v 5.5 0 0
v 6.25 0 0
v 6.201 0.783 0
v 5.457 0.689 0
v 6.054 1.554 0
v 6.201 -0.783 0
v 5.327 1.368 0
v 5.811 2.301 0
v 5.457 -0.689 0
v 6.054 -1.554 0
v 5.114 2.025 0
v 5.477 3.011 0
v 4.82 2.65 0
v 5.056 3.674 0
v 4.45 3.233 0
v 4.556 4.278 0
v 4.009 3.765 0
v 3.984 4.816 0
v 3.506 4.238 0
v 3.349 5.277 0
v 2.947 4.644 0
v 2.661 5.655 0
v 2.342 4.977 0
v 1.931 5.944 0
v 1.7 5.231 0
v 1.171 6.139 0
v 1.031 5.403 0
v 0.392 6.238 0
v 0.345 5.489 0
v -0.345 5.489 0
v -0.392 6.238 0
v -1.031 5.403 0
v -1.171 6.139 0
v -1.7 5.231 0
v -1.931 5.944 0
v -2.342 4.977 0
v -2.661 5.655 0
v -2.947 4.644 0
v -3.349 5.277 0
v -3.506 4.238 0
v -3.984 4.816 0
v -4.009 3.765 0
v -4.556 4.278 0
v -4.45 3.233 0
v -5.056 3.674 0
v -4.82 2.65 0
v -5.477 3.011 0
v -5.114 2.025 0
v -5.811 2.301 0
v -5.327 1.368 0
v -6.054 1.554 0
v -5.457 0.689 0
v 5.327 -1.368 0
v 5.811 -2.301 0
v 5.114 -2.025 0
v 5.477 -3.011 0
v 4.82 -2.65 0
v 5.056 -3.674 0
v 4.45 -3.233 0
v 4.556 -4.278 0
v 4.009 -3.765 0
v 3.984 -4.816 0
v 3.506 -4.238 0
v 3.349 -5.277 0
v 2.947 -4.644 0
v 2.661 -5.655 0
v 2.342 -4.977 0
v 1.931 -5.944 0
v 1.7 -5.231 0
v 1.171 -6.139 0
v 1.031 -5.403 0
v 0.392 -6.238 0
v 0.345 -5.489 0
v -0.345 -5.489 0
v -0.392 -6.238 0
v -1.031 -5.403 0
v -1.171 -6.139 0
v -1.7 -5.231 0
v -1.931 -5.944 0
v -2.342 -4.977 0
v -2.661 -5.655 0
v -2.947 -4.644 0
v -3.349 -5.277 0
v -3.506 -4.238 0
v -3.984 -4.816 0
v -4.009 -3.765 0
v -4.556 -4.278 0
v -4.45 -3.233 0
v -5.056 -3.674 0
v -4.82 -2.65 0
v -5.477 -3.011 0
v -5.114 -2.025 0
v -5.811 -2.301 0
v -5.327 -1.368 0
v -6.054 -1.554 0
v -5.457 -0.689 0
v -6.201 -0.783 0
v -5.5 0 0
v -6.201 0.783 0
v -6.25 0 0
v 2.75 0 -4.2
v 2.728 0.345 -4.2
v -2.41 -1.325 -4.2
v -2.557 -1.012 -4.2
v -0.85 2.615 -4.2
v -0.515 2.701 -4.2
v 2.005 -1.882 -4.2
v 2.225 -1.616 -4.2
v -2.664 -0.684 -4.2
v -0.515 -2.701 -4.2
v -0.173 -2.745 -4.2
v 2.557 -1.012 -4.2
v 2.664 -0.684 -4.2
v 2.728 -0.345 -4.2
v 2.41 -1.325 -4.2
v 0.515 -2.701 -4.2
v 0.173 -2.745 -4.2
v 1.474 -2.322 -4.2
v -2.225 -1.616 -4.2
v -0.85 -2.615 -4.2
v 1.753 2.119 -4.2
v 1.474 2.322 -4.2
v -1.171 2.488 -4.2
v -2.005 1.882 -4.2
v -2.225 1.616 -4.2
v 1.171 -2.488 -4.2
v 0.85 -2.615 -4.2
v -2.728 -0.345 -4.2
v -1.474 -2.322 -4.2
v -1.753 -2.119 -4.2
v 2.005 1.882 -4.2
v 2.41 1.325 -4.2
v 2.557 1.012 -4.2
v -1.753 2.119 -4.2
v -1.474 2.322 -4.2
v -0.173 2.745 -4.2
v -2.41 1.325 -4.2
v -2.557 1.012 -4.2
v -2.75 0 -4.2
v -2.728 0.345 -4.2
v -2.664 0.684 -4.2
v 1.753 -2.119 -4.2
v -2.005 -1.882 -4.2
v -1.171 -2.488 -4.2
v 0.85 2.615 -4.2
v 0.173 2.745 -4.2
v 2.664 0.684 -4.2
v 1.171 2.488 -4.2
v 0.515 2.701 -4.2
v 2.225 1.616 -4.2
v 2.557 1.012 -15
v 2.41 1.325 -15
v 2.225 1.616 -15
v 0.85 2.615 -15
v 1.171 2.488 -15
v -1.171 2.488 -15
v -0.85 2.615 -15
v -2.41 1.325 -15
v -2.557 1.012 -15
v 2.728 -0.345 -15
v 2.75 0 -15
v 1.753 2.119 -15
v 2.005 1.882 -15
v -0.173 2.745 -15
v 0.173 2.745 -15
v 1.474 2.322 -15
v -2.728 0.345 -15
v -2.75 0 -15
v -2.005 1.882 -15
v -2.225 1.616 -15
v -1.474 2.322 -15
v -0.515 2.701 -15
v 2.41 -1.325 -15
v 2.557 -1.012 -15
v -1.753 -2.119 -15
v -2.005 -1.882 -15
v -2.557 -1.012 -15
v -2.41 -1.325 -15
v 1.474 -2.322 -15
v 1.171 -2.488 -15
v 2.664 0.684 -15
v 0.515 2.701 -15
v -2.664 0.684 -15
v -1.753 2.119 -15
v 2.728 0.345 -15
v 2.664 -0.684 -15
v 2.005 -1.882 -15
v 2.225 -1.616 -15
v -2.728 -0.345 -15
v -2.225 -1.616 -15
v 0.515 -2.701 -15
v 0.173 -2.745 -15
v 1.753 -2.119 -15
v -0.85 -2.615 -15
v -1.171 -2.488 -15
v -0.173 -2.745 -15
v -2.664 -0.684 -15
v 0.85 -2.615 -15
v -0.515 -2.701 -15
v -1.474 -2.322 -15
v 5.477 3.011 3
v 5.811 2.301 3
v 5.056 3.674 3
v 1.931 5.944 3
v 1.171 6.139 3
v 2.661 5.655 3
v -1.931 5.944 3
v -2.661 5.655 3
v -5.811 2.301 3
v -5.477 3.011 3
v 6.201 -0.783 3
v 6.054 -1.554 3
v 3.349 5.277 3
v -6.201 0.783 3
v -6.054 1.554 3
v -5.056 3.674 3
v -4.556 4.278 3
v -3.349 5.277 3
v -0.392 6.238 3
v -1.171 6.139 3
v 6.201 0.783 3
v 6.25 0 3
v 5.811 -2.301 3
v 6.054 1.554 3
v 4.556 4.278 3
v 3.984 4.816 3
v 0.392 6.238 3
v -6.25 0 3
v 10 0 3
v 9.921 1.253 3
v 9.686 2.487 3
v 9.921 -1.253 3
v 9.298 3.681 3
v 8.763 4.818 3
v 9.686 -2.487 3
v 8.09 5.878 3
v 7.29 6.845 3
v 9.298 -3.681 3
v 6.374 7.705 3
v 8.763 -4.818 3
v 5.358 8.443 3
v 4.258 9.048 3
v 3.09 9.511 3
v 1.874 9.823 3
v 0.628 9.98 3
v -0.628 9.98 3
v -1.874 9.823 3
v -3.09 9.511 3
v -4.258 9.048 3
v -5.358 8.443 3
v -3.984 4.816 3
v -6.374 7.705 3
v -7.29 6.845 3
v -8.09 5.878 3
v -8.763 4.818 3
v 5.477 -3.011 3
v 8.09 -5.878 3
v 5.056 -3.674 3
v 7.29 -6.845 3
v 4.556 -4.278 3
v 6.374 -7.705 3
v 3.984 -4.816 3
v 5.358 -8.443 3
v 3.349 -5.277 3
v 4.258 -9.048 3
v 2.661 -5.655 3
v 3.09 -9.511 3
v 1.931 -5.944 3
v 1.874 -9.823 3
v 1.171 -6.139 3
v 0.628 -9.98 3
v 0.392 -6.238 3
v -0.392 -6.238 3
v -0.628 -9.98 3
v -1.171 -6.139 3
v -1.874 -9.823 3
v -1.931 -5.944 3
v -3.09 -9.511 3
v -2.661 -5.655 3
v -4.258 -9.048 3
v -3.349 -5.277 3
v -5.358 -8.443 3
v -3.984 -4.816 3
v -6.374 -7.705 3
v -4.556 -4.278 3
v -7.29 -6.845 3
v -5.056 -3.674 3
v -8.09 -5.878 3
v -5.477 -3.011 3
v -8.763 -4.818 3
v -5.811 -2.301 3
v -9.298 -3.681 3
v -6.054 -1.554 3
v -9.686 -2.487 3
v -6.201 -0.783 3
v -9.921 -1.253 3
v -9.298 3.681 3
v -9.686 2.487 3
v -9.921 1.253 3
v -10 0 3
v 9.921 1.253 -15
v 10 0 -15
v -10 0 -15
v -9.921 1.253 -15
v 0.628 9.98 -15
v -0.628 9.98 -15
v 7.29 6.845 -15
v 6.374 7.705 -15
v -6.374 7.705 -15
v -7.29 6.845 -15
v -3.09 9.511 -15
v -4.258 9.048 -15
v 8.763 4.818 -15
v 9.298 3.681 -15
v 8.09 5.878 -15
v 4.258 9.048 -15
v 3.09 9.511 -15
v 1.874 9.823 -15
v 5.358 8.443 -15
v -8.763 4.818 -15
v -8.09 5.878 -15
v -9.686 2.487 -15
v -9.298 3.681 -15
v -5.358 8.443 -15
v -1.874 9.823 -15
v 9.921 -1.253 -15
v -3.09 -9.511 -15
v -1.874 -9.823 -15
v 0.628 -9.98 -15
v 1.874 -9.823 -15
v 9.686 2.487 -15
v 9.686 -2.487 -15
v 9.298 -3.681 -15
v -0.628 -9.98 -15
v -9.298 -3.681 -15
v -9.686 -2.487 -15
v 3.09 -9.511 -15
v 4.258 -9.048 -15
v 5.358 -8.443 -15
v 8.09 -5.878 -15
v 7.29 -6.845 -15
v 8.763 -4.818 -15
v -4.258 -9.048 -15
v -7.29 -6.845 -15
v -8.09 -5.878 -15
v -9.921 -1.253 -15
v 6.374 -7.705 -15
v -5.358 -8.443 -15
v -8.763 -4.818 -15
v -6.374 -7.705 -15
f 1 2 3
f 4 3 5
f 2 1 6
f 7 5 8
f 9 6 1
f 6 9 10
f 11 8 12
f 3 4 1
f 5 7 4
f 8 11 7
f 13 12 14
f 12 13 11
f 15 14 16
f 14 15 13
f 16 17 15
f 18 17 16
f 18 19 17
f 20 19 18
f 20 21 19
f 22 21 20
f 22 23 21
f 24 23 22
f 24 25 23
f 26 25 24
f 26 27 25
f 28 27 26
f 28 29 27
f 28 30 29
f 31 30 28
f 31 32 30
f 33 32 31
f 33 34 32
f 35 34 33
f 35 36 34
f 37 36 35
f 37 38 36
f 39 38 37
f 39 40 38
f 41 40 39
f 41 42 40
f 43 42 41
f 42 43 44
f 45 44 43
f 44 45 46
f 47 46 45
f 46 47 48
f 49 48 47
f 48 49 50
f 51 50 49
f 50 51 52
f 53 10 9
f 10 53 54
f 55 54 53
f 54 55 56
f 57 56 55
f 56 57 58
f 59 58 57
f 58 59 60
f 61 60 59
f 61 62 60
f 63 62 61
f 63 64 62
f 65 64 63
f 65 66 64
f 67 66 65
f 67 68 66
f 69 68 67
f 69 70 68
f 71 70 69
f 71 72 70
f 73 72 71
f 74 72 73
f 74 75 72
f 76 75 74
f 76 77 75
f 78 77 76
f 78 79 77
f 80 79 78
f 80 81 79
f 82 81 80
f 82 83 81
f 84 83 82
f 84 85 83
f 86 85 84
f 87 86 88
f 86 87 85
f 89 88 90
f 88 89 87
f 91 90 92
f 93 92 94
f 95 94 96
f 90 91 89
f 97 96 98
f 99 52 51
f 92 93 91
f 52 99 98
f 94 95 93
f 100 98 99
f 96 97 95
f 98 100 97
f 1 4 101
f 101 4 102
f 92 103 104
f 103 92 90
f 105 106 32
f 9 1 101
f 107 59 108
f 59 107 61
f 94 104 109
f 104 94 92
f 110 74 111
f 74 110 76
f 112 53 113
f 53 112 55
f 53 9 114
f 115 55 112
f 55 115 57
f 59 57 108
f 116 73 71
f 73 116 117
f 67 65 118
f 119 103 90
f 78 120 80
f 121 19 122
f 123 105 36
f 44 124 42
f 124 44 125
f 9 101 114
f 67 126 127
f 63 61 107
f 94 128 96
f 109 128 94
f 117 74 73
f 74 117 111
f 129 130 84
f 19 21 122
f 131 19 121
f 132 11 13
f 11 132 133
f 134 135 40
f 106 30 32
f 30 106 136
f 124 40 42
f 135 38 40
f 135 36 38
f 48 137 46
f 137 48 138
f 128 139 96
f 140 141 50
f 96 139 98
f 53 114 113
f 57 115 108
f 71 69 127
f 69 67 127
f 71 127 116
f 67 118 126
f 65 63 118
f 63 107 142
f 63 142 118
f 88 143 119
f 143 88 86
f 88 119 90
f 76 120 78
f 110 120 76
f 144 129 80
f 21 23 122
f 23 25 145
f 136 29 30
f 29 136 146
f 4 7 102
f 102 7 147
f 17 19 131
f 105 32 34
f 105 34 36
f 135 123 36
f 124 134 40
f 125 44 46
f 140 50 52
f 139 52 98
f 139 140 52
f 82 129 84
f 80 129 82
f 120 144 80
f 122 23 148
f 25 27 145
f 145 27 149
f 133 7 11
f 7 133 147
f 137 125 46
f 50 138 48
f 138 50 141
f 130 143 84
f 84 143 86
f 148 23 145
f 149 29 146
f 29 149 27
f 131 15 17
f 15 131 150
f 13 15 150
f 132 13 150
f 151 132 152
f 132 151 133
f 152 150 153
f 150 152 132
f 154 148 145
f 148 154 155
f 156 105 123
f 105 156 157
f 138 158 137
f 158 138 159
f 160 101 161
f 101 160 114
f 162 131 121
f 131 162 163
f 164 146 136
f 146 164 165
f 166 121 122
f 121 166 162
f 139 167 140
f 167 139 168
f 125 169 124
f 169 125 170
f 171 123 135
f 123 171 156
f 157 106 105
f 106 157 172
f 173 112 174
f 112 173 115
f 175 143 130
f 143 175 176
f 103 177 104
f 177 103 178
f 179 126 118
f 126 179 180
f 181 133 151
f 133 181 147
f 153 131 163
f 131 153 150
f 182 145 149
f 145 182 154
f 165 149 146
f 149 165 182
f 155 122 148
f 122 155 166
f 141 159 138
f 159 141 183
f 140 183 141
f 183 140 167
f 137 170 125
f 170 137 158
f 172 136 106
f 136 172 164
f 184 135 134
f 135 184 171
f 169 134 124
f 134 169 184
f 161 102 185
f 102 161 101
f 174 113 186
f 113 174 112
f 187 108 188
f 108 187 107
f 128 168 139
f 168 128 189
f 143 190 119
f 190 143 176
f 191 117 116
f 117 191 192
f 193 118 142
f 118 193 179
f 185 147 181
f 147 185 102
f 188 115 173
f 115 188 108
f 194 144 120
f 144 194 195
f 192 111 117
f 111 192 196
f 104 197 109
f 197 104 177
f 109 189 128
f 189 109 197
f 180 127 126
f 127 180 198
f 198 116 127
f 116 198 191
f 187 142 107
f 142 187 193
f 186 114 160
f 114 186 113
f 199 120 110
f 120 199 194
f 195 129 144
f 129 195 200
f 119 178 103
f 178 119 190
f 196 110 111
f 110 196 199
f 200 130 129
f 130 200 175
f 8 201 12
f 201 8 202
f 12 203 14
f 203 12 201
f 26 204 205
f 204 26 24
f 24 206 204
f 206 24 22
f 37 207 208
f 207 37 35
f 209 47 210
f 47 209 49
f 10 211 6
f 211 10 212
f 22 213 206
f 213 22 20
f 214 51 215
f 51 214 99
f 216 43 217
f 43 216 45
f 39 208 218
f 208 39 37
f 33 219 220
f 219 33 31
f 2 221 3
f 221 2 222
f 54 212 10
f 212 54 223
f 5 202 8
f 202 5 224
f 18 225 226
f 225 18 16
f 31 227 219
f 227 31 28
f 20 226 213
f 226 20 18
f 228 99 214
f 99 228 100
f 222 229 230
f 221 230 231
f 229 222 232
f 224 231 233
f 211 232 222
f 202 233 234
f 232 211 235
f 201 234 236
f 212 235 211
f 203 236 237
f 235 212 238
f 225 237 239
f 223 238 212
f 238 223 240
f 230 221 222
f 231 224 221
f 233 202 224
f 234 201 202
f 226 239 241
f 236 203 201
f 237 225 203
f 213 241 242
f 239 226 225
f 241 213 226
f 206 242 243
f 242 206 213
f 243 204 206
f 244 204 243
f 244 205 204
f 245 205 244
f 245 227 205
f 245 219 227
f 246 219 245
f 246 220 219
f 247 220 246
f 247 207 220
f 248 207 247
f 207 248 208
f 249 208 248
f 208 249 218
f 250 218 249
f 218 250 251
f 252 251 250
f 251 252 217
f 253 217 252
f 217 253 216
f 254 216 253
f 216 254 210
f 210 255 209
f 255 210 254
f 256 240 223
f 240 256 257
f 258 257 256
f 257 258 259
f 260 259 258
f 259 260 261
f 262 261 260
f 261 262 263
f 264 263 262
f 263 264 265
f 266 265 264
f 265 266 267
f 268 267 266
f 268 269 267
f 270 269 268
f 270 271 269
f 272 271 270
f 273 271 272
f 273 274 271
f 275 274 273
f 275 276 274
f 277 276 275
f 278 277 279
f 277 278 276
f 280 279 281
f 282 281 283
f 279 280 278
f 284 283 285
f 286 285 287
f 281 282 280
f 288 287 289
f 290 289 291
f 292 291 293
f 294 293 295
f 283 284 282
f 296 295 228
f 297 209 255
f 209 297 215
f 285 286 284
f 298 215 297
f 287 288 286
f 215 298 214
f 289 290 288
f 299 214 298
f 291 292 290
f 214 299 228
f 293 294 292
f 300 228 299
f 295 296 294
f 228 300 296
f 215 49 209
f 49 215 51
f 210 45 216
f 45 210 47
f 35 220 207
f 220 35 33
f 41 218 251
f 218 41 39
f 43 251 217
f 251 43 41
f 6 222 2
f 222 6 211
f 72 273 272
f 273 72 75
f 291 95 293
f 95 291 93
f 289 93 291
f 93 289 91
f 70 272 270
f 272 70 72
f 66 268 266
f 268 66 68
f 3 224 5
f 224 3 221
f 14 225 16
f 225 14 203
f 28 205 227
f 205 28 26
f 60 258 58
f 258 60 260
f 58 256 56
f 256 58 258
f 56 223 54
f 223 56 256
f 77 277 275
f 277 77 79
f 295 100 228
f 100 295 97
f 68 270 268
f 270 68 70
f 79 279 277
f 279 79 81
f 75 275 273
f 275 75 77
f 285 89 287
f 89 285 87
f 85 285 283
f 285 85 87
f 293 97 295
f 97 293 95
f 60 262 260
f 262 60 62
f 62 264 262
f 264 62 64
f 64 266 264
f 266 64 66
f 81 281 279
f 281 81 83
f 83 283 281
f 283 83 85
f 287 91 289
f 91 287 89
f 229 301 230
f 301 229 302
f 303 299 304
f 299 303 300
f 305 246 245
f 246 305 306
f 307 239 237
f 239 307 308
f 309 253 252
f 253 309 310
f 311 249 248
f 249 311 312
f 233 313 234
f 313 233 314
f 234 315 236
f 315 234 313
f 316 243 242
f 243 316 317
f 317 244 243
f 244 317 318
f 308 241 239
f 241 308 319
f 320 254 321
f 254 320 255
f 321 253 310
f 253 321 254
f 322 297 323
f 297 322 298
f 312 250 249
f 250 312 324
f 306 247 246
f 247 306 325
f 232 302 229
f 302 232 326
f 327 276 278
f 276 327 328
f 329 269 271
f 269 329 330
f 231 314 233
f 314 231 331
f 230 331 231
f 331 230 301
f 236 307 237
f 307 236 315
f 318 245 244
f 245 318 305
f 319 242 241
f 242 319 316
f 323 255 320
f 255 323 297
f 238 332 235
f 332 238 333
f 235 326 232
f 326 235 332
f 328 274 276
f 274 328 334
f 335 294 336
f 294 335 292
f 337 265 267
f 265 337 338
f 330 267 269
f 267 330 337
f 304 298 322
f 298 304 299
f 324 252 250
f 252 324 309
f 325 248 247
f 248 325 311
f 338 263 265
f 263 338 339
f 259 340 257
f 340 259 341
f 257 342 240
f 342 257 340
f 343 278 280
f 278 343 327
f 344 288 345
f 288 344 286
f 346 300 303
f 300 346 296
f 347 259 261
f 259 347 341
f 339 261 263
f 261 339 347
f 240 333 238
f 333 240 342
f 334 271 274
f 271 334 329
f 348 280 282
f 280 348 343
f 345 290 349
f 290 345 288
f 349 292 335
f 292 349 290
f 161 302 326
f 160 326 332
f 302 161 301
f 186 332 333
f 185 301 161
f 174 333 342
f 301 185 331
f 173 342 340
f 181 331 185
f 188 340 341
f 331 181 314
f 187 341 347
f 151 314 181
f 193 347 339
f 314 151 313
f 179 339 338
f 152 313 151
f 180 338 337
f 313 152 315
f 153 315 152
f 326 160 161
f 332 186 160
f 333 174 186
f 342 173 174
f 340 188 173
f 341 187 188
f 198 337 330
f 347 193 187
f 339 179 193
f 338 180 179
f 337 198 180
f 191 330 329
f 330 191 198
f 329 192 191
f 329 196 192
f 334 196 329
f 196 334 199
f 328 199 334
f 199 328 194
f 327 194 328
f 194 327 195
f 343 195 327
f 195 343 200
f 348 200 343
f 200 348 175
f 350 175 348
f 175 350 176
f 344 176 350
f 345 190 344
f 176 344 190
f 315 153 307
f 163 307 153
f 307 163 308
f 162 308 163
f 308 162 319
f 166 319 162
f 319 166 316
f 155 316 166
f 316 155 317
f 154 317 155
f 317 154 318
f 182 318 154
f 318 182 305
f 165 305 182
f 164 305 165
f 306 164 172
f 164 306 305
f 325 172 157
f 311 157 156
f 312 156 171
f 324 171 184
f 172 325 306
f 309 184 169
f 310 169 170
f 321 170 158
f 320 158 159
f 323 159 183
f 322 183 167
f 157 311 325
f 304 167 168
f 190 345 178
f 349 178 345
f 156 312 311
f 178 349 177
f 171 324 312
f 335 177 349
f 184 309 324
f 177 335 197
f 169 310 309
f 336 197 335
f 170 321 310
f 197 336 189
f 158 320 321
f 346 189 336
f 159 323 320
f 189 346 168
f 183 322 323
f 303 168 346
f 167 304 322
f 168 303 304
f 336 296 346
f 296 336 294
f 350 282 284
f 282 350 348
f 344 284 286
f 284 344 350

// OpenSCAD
$fn = 50;


difference() {
	union() {
		translate(v = [0, 0, -15.0000000000]) {
			cylinder(h = 18, r = 10.0000000000);
		}
	}
	union() {
		translate(v = [0, 0, 0]) {
			rotate(a = [0, 0, 0]) {
				difference() {
					union() {
						translate(v = [0, 0, -18.0000000000]) {
							cylinder(h = 18, r = 2.2500000000);
						}
						translate(v = [0, 0, -4.2000000000]) {
							cylinder(h = 4.2000000000, r1 = 2.7500000000, r2 = 5.5000000000);
						}
						translate(v = [0, 0, -18.0000000000]) {
							cylinder(h = 18, r = 2.7500000000);
						}
						translate(v = [0, 0, -18.0000000000]) {
							cylinder(h = 18, r = 2.2500000000);
						}
					}
					union();
				}
			}
		}
		#cylinder(h = 3, r = 6.2500000000);
	}
}
